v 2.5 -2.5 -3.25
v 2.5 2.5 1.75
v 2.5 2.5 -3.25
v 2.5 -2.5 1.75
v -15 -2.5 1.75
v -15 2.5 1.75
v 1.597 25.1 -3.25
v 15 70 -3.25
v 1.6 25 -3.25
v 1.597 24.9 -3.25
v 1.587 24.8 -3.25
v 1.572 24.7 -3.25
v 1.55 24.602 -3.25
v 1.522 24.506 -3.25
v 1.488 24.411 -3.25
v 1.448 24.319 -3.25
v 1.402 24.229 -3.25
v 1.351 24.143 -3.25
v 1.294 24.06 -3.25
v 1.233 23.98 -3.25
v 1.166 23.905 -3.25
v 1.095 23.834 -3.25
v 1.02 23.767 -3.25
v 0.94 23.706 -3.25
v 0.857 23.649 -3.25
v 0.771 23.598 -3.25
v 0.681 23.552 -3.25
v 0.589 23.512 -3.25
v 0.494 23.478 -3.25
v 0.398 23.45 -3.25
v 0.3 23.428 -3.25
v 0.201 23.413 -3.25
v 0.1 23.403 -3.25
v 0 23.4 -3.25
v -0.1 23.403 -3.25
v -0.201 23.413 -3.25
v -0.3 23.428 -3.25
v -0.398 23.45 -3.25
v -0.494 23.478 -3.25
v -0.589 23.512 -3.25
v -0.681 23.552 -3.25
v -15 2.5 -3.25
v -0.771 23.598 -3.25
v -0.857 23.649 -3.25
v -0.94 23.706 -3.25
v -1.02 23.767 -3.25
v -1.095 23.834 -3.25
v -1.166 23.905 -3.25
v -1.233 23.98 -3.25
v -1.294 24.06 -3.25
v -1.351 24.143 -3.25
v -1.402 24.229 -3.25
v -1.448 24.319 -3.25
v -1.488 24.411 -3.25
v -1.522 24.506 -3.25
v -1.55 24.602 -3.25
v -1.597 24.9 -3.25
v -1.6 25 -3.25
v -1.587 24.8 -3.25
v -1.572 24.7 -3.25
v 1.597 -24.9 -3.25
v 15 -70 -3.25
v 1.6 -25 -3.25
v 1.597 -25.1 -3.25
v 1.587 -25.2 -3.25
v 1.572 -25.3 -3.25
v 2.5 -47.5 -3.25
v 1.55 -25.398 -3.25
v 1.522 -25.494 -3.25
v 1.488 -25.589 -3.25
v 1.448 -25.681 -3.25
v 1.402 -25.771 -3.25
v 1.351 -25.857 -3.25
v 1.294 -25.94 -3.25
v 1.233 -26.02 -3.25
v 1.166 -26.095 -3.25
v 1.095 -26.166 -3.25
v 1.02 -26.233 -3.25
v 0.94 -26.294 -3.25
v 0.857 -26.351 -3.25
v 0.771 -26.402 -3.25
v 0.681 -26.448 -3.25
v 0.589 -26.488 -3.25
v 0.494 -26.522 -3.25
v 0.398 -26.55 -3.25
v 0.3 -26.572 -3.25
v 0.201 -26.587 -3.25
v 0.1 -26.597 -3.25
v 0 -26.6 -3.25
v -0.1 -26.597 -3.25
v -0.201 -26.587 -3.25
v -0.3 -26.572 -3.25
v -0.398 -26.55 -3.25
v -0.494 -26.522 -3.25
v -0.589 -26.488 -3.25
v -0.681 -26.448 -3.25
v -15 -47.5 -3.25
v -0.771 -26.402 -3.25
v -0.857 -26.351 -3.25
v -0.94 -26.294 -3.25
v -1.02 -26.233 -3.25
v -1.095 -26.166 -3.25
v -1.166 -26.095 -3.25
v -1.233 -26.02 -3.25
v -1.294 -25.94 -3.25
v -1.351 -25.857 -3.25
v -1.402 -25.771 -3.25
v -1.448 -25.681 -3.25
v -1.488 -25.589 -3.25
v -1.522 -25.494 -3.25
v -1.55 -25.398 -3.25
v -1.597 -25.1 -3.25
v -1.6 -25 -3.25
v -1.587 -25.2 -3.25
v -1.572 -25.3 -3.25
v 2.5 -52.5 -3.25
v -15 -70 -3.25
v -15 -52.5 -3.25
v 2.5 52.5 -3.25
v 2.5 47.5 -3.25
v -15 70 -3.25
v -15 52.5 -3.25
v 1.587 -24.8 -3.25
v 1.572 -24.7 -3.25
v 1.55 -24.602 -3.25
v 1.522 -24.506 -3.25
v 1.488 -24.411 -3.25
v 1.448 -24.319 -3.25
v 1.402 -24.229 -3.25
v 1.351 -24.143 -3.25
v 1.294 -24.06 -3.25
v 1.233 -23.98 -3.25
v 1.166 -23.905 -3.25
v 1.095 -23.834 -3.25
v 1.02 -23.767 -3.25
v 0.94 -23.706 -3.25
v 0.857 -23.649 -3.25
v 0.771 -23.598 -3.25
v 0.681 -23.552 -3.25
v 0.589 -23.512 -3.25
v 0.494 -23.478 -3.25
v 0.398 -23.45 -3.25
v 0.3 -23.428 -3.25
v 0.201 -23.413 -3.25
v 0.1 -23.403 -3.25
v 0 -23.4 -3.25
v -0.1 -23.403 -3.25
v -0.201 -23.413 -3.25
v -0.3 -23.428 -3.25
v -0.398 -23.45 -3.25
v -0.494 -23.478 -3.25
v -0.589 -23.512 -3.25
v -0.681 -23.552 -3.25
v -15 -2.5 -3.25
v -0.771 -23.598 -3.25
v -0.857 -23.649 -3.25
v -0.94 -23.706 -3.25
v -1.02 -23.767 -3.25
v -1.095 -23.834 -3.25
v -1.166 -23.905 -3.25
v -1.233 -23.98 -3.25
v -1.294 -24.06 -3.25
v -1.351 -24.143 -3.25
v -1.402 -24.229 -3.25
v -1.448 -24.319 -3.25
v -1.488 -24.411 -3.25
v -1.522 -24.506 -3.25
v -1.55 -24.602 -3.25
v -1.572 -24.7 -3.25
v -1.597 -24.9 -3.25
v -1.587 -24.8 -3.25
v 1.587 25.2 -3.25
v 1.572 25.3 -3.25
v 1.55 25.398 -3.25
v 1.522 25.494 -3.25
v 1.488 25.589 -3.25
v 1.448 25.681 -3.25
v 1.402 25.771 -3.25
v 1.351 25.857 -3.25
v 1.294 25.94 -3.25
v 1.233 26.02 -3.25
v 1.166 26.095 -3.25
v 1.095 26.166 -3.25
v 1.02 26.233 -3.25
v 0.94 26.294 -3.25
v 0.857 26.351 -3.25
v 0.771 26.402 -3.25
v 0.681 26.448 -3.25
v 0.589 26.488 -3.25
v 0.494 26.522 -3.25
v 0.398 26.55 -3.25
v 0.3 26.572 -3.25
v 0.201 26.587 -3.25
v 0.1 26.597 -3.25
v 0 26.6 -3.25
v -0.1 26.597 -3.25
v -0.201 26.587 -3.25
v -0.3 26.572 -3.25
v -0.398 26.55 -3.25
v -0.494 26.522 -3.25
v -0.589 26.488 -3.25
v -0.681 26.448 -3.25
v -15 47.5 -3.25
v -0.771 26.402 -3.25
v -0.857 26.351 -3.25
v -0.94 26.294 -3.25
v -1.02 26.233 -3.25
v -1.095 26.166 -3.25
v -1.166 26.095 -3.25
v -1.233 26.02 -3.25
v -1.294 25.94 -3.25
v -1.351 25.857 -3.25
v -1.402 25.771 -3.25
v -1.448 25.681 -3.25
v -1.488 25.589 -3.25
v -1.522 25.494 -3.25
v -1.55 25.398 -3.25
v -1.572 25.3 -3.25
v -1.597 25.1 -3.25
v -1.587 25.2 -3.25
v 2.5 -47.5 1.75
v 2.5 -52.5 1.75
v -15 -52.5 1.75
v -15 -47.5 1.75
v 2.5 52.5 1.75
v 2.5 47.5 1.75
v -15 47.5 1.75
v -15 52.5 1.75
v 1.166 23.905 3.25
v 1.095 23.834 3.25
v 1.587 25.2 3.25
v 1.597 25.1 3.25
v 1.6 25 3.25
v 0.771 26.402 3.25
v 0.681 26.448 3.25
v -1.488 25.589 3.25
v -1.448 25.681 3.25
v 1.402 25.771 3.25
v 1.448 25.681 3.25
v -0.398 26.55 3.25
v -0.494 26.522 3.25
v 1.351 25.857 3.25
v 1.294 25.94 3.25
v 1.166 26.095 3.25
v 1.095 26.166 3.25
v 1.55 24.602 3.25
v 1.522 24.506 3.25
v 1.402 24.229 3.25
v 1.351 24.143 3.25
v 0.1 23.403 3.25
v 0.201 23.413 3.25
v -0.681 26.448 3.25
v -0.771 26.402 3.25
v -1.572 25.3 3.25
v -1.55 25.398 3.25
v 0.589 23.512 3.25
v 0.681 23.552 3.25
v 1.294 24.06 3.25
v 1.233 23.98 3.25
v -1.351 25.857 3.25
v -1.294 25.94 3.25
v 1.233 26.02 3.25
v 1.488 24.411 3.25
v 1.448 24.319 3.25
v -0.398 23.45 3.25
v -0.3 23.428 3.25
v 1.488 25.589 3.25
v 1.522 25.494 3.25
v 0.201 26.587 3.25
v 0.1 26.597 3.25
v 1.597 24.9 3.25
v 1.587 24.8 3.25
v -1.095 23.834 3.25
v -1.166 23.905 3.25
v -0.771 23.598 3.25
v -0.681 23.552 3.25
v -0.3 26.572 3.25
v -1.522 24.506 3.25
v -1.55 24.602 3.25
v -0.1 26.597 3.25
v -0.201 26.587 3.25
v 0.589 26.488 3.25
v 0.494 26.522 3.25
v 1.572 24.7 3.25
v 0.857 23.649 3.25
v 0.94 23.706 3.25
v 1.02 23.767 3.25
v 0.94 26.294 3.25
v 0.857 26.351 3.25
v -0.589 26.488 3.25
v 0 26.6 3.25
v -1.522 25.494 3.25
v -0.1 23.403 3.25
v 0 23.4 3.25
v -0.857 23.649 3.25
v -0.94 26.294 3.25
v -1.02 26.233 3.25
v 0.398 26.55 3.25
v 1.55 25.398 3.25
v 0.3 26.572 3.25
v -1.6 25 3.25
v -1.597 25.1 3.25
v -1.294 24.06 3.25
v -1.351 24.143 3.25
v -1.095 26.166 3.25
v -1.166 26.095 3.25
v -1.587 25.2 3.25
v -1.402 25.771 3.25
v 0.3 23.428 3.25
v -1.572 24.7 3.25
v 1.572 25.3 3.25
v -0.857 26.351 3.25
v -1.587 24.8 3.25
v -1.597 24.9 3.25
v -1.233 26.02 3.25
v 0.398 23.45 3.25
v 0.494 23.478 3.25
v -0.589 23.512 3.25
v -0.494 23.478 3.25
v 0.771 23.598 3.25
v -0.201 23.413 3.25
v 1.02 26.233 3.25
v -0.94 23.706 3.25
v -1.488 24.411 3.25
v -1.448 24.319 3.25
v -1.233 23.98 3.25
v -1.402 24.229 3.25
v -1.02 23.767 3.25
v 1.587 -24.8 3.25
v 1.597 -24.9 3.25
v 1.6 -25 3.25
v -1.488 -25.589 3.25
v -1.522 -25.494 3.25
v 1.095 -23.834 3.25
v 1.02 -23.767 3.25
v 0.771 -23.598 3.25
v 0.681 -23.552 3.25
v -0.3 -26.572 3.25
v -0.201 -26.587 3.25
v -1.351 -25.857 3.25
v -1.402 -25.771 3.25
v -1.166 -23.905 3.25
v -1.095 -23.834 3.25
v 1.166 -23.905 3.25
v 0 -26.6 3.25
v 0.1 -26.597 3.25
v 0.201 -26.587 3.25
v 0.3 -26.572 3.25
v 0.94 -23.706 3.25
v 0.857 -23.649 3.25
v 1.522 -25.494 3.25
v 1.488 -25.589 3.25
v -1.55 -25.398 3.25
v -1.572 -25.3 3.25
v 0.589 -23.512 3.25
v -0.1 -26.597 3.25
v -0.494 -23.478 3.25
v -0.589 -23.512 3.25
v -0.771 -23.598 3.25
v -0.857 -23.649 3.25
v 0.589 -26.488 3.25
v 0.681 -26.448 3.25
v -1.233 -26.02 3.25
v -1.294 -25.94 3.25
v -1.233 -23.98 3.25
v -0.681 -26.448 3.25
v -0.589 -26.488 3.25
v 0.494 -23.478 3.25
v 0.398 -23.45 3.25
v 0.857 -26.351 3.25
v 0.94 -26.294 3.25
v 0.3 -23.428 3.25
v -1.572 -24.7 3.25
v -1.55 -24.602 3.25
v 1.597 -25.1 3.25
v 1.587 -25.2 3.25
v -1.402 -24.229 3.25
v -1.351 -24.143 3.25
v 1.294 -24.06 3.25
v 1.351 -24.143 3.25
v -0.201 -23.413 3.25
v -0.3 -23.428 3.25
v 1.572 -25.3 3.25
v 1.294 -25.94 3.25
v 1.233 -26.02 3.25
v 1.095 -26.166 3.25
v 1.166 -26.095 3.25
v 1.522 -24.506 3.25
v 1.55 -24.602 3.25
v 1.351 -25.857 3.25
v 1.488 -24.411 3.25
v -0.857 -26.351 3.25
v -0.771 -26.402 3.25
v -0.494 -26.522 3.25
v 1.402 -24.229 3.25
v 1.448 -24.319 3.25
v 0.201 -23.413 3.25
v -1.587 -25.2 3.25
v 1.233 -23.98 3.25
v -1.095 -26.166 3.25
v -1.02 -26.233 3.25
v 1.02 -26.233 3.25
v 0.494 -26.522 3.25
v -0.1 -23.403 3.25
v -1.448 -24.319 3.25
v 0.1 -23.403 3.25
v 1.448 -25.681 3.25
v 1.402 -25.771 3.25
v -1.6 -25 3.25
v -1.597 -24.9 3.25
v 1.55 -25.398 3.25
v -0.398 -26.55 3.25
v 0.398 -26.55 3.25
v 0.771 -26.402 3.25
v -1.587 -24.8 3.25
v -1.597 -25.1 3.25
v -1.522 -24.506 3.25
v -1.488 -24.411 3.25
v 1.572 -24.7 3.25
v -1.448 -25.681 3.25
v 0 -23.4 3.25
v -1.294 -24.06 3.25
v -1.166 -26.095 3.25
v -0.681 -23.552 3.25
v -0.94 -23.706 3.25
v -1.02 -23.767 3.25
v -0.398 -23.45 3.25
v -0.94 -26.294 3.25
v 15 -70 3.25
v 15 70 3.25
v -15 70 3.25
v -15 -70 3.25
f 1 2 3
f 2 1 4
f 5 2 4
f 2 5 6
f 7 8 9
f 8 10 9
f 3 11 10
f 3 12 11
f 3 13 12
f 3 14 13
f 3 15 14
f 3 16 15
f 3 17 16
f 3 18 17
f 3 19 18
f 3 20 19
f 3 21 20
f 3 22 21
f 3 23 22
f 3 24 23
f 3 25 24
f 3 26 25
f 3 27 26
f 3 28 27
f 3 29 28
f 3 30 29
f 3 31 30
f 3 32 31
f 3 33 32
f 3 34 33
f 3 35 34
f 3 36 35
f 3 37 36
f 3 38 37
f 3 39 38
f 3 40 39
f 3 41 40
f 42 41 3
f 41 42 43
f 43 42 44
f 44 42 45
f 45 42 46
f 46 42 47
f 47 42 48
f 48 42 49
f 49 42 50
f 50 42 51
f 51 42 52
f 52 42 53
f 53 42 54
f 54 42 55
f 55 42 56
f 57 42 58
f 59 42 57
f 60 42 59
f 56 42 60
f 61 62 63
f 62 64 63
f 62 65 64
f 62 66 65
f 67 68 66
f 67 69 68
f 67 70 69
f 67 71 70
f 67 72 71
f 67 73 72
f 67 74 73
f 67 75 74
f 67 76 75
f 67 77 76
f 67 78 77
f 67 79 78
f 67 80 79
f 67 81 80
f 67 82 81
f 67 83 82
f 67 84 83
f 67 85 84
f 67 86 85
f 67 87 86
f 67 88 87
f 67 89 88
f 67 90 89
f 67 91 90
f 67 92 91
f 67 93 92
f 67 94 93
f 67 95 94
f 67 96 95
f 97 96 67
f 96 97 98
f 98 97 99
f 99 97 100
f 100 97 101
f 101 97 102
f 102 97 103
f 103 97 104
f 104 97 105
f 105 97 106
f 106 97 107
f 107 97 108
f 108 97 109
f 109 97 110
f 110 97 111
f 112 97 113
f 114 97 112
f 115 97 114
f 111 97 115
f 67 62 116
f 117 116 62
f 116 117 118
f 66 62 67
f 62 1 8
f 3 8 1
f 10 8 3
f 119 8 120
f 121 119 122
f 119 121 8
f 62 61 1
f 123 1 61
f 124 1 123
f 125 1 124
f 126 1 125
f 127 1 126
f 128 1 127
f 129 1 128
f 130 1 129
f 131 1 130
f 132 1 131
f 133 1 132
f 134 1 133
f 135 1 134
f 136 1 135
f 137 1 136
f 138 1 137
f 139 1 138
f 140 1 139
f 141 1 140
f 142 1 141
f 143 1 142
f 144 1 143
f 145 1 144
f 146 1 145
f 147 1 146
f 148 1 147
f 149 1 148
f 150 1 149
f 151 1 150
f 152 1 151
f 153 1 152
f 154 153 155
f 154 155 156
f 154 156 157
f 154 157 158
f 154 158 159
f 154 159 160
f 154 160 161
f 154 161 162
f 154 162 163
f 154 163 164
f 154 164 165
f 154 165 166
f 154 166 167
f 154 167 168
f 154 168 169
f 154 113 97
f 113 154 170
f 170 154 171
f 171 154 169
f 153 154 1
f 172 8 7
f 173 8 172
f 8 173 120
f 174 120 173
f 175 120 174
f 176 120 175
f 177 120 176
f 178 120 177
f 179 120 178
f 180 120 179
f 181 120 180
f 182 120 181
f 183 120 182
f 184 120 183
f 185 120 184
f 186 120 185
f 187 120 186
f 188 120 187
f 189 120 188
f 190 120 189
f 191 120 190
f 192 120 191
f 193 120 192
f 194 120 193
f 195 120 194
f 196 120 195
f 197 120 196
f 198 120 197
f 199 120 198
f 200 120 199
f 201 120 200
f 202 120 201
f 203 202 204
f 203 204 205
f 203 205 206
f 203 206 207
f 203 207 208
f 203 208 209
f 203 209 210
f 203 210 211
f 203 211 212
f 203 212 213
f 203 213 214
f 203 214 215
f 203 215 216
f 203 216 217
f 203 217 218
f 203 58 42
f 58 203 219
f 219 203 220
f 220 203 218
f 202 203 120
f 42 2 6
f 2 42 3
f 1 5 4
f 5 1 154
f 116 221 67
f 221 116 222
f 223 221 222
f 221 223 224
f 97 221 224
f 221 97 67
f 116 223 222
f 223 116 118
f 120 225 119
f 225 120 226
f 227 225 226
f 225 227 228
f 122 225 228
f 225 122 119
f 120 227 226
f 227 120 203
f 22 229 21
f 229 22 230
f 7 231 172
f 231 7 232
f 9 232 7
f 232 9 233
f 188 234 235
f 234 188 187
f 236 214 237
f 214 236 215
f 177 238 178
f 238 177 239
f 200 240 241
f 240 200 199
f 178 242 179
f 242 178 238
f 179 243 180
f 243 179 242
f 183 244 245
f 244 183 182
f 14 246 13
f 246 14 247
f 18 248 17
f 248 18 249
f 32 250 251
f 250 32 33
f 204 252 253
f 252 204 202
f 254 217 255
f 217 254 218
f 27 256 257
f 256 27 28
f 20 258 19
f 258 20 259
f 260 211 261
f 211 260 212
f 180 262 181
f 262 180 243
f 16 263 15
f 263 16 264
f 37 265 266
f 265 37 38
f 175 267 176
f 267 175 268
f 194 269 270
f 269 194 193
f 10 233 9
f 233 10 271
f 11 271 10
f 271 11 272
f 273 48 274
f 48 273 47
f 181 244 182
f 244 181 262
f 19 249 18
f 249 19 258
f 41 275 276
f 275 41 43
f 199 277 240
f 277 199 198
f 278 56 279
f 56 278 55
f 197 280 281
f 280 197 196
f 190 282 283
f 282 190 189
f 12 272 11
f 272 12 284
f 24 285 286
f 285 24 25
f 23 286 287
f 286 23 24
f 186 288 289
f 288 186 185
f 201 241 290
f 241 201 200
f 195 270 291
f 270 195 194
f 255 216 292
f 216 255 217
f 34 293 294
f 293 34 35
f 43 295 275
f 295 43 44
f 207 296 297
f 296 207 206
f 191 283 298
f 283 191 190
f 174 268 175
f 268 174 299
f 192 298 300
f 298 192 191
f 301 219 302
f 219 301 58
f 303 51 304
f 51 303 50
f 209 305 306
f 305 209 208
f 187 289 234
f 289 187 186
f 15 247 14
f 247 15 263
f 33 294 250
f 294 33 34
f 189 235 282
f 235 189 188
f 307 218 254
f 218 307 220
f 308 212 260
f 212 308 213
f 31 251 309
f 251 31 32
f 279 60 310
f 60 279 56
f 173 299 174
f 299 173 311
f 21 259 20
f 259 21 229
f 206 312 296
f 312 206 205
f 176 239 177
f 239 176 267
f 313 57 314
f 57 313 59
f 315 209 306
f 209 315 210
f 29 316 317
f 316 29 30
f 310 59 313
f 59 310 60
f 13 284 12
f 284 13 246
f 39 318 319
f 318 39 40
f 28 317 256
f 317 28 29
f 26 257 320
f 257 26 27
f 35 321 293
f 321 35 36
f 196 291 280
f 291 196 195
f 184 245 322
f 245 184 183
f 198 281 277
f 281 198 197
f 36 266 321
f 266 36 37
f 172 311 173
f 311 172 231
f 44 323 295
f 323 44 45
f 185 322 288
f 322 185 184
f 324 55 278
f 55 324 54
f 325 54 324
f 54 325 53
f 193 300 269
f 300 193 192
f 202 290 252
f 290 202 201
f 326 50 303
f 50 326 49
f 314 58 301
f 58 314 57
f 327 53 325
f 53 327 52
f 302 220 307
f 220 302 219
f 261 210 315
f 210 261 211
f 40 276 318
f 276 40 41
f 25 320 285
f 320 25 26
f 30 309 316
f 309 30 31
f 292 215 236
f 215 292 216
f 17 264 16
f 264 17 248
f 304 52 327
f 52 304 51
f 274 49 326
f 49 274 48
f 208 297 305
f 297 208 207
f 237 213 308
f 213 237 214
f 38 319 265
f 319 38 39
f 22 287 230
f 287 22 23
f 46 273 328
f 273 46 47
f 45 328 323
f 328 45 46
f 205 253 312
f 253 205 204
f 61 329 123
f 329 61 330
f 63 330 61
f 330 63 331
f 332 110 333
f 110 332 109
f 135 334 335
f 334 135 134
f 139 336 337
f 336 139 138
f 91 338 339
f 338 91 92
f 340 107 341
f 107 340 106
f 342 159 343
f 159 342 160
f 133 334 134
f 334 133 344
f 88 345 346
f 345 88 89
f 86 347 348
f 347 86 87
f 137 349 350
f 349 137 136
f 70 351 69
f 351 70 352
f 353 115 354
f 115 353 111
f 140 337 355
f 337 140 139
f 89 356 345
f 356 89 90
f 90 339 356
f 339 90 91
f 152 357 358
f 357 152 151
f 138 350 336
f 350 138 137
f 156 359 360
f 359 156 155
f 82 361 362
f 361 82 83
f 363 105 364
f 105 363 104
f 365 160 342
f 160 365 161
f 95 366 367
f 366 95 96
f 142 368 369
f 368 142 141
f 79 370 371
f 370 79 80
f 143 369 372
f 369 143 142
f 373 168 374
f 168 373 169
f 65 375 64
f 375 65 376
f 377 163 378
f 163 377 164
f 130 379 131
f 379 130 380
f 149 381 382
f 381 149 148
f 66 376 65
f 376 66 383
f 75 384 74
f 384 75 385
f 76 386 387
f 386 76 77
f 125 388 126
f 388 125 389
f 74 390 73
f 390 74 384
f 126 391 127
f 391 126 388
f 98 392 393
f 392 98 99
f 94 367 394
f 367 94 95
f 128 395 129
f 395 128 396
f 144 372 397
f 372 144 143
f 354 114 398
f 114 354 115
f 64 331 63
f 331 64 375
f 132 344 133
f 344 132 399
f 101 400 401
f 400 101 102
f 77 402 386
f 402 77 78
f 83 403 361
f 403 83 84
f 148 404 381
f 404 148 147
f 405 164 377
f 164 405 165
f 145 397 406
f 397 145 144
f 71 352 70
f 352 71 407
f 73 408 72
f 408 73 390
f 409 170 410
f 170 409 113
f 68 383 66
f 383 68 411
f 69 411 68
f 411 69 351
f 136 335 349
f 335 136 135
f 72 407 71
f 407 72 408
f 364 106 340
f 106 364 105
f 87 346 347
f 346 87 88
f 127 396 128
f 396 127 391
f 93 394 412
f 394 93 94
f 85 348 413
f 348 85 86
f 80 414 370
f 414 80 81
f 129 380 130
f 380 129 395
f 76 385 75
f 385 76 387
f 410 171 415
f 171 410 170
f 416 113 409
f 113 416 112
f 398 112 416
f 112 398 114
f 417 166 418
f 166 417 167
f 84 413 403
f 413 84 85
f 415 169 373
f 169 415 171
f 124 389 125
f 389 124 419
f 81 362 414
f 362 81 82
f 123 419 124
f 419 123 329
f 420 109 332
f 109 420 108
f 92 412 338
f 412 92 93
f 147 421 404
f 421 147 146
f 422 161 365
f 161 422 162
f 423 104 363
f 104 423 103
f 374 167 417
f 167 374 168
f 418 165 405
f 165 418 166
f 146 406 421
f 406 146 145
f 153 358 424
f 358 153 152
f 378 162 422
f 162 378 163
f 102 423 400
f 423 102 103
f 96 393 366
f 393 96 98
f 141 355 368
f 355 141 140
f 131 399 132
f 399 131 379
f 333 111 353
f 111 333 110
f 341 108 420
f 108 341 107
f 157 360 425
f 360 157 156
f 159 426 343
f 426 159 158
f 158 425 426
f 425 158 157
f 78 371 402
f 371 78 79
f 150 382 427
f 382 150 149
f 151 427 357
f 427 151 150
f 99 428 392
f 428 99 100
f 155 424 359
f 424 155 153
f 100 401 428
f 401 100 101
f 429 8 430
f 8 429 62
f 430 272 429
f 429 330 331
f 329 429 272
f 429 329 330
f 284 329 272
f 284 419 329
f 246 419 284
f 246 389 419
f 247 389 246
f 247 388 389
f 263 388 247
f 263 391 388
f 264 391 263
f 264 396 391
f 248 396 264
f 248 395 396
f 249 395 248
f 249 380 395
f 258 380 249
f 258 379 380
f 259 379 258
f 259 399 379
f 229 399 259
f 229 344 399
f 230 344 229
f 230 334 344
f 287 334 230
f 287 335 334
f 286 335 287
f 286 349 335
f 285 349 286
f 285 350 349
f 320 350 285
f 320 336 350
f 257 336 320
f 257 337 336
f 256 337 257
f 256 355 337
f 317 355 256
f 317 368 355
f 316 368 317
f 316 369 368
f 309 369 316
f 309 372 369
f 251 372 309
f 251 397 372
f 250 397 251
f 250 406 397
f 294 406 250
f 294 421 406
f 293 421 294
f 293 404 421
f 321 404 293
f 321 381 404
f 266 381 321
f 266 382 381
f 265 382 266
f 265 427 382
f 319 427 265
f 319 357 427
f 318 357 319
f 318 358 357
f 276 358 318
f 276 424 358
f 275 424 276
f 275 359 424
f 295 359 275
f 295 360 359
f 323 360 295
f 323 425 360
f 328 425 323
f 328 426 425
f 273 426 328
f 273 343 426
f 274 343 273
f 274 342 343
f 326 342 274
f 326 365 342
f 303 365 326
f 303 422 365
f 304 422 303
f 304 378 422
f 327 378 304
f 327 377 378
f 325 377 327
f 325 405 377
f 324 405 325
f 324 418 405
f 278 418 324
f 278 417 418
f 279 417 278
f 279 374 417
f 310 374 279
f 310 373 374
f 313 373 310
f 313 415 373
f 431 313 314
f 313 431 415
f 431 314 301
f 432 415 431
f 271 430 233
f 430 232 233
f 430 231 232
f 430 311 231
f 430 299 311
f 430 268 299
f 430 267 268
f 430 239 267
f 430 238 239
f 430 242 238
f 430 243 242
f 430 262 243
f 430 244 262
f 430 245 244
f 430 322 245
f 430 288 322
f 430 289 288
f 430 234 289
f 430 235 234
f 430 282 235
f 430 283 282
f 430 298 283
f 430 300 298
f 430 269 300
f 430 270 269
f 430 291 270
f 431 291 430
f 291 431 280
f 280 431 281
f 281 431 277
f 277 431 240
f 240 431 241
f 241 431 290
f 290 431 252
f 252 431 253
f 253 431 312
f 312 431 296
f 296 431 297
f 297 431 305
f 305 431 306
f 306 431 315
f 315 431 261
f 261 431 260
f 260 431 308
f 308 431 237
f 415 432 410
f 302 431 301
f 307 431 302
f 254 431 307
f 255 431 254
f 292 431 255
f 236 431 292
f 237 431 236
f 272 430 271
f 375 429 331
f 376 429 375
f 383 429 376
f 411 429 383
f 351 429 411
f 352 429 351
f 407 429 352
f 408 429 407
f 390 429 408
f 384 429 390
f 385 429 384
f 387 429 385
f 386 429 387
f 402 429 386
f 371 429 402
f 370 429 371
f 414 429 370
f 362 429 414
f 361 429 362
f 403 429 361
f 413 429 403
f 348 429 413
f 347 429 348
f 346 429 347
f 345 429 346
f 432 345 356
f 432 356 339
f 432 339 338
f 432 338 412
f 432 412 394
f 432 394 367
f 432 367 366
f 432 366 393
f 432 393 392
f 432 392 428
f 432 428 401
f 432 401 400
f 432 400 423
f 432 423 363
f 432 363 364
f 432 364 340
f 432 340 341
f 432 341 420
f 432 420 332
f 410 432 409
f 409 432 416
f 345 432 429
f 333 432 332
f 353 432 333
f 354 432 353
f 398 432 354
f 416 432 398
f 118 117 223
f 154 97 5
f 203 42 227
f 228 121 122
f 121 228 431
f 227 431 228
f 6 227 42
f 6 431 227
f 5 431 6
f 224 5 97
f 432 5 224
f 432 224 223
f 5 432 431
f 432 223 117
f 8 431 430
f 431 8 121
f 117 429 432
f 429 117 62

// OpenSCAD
$fn = 100;
difference()
{
  cube(size = [30, 140, 6.5], center = true);
  translate(v = [-15, 0, 0])
  {
    translate(v = [0, 0, -0.75])
    {
      union()
      {
        union()
        {
          cube(size = [35, 5, 5], center = true);
          translate(v = [0, 0, 15])
          {
            translate(v = [-24.375, 0, 0])
            {
              rotate(a = [0, 90, 90], v = undef)
              {
                translate(v = [0, -7.5, 0])
                {
                  rotate_extrude(angle = 180, convexity = 4, $fn = 40)
                  {
                    translate(v = [15, 0, 0])
                    {
                      square(size = [5, 5], center = true);
                    }
                  }
                }
              }
            }
          }
        }
        translate(v = [0, -50, 0])
        {
          union()
          {
            cube(size = [35, 5, 5], center = true);
            translate(v = [0, 0, 15])
            {
              translate(v = [-24.375, 0, 0])
              {
                rotate(a = [0, 90, 90], v = undef)
                {
                  translate(v = [0, -7.5, 0])
                  {
                    rotate_extrude(angle = 180, convexity = 4, $fn = 40)
                    {
                      translate(v = [15, 0, 0])
                      {
                        square(size = [5, 5], center = true);
                      }
                    }
                  }
                }
              }
            }
          }
        }
        translate(v = [0, 50, 0])
        {
          union()
          {
            cube(size = [35, 5, 5], center = true);
            translate(v = [0, 0, 15])
            {
              translate(v = [-24.375, 0, 0])
              {
                rotate(a = [0, 90, 90], v = undef)
                {
                  translate(v = [0, -7.5, 0])
                  {
                    rotate_extrude(angle = 180, convexity = 4, $fn = 40)
                    {
                      translate(v = [15, 0, 0])
                      {
                        square(size = [5, 5], center = true);
                      }
                    }
                  }
                }
              }
            }
          }
        }
      }
    }
  }
  union()
  {
    translate(v = [0, 25, 0])
    {
      cylinder(h = 6.53, r = 1.6, center = true);
    }
    translate(v = [0, -25, 0])
    {
      cylinder(h = 6.53, r = 1.6, center = true);
    }
  }
}
